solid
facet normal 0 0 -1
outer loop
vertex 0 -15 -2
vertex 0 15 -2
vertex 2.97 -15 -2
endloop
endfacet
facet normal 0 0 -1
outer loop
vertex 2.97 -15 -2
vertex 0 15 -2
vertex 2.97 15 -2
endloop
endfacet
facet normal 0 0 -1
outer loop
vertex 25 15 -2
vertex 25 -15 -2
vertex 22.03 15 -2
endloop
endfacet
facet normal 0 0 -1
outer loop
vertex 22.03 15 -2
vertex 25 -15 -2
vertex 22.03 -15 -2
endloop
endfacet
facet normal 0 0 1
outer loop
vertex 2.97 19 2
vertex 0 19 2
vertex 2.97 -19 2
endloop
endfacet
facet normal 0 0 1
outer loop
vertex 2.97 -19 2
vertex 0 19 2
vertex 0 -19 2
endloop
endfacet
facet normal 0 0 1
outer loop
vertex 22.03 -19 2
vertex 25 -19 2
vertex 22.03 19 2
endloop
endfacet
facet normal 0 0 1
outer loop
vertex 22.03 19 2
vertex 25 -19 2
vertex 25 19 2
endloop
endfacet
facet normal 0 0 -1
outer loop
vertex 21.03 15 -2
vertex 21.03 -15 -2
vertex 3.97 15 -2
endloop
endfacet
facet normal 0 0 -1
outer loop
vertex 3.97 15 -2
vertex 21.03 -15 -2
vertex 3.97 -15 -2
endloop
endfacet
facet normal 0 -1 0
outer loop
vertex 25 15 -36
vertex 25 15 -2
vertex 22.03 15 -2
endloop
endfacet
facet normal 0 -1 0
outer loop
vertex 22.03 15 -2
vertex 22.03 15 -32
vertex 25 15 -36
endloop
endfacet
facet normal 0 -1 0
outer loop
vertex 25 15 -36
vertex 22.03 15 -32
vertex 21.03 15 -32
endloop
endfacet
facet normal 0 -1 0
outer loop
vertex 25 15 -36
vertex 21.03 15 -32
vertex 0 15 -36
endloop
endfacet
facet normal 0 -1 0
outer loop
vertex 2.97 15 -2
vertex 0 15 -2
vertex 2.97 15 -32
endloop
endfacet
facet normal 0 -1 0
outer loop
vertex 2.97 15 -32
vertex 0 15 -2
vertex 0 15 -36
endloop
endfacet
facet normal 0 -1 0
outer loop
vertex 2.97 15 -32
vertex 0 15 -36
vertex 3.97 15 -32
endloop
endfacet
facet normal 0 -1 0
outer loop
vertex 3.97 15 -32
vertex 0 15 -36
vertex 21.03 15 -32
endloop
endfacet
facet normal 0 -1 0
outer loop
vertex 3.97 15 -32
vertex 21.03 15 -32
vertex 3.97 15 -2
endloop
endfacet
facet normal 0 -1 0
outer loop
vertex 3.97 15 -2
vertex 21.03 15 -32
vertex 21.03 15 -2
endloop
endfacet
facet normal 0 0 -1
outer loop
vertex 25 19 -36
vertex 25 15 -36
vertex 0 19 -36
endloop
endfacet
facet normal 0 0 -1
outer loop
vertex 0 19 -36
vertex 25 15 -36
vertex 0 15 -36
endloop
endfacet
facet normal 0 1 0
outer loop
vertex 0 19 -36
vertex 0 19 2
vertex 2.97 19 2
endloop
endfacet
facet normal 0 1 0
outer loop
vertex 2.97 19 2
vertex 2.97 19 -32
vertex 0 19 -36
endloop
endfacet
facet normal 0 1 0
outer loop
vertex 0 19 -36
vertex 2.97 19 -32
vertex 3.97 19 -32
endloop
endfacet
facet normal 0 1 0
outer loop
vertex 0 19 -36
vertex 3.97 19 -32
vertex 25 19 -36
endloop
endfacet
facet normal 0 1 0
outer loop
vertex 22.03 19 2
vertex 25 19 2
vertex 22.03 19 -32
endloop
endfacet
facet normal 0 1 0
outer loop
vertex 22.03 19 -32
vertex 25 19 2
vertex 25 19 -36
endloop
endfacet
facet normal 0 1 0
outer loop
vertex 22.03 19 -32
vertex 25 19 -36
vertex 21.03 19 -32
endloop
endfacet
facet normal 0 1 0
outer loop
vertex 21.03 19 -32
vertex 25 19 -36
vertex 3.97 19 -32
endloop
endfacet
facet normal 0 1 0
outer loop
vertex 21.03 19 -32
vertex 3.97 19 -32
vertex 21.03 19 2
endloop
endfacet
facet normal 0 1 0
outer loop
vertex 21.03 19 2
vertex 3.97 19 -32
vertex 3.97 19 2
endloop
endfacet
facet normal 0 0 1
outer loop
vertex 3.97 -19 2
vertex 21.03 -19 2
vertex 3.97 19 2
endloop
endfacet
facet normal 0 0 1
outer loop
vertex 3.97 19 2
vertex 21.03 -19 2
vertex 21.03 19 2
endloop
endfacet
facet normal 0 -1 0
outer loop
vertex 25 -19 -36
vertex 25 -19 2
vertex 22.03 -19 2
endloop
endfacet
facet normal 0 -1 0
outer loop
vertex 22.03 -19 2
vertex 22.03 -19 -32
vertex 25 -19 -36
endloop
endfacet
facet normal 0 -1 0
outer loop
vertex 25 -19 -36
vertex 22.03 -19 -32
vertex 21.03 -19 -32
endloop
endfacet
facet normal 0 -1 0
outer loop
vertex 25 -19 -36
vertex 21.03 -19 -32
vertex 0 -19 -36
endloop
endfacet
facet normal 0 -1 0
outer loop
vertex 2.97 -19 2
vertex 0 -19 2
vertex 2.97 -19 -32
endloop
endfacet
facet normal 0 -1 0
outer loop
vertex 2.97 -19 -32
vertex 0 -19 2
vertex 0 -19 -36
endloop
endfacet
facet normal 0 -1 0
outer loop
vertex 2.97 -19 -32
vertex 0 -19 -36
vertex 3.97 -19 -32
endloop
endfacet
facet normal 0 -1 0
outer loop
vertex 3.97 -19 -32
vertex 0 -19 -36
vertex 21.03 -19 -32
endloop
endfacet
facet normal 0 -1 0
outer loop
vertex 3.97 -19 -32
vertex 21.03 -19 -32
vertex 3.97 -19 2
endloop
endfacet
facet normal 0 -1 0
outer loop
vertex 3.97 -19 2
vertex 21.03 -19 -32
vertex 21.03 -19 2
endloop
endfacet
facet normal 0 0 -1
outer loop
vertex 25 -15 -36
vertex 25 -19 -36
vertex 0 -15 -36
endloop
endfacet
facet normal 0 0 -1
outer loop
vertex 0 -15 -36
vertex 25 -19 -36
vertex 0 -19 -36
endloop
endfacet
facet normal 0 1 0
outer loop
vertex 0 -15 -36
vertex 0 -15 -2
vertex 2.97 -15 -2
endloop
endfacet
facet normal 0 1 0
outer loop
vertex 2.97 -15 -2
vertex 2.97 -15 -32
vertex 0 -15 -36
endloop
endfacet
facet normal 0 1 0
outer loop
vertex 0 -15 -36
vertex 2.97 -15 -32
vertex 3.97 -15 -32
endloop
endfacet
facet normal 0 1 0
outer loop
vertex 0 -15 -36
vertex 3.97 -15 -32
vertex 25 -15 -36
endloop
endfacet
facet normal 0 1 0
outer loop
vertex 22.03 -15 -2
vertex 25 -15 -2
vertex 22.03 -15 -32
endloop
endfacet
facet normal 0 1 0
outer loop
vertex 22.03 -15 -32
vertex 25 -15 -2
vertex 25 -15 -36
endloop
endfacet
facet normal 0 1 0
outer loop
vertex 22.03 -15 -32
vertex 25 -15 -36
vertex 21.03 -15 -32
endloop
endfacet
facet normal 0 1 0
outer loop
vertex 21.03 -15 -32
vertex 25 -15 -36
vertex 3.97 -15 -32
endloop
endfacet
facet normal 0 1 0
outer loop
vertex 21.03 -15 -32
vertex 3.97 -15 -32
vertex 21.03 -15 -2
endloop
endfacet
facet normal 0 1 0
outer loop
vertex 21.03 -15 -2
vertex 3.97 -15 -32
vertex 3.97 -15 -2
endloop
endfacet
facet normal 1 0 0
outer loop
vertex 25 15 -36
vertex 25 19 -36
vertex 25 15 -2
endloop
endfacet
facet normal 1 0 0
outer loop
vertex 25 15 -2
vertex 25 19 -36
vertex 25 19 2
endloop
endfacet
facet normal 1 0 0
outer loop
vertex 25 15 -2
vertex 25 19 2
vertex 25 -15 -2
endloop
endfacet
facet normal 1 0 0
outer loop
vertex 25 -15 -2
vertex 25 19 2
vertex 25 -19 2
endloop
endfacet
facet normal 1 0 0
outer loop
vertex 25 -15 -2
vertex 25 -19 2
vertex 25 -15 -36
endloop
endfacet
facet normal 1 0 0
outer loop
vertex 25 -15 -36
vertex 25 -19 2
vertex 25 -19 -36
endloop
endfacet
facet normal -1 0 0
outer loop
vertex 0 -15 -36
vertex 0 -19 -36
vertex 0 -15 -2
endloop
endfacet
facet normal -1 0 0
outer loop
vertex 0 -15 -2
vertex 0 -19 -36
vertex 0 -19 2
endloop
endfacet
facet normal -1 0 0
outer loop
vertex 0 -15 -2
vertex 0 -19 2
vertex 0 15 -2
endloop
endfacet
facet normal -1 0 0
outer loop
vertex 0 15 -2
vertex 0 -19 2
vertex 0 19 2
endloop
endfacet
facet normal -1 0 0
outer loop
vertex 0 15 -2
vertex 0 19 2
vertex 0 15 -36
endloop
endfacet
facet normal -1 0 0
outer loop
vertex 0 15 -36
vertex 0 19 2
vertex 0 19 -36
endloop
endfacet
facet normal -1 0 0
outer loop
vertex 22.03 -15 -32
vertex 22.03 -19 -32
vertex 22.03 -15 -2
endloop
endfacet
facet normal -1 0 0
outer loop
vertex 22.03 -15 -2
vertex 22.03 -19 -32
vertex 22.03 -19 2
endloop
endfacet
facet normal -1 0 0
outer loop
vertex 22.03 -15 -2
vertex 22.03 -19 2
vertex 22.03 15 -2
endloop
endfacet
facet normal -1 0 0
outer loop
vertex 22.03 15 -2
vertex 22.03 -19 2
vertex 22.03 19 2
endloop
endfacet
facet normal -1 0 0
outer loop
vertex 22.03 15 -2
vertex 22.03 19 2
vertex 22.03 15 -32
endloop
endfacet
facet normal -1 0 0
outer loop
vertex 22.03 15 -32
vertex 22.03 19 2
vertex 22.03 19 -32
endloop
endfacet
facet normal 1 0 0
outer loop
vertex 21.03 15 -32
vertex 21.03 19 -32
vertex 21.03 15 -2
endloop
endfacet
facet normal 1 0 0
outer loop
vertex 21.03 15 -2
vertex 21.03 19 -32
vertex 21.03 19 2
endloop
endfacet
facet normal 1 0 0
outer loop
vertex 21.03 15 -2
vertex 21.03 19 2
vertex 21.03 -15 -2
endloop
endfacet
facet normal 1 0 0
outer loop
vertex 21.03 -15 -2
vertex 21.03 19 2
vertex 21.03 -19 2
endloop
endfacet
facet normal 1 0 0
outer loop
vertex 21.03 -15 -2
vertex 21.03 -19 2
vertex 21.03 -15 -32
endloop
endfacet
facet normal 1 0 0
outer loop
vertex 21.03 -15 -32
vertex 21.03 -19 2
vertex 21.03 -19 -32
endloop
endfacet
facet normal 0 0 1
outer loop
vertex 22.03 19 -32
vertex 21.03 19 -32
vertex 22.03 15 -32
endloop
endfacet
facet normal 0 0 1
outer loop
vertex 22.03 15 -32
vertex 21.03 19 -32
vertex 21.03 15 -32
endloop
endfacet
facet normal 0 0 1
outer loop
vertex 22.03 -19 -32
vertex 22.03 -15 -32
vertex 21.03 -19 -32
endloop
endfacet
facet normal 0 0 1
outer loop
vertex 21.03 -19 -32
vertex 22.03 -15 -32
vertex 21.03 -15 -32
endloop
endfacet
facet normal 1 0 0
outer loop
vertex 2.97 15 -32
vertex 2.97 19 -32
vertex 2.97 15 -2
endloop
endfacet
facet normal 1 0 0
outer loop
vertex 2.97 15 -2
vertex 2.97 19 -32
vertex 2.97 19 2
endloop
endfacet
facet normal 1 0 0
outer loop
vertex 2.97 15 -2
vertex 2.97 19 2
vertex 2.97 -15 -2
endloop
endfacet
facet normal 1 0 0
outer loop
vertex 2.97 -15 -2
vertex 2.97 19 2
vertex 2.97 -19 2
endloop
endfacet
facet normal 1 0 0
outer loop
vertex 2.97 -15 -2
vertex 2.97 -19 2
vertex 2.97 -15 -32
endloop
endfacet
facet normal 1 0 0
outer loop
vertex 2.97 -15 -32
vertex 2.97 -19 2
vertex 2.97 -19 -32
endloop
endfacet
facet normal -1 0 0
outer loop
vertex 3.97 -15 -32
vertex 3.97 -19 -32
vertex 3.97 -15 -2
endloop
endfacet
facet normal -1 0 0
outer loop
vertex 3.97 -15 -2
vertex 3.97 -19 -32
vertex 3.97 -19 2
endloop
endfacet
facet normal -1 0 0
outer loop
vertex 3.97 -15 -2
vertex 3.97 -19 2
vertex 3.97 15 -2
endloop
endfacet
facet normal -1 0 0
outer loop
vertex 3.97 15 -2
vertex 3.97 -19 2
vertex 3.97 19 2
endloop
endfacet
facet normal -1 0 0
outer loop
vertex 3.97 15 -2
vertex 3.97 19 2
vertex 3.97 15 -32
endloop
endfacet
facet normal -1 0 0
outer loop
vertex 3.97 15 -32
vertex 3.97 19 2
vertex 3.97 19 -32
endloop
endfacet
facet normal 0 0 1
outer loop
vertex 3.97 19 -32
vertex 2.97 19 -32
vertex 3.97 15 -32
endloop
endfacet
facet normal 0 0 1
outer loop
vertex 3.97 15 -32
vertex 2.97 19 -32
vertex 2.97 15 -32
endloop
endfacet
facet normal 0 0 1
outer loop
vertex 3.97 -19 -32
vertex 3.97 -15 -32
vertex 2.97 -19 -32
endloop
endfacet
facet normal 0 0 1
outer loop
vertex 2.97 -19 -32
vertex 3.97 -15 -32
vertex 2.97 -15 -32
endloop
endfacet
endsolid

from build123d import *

# Parameters (mm, degrees)
SKETCH2_W           = 4
SKETCH2_H           = 30
BOSS_EXTRUDE1_DEPTH = 25
SKETCH3_W           = 1
SKETCH3_H           = 38
CUT_EXTRUDE1_DEPTH  = 34


with BuildPart() as part:
    # Sketch2 → Boss-Extrude1 (new body)
    with BuildSketch(Plane(origin=(0, 0, 0), x_dir=(0, 0, -1), z_dir=(1, 0, 0))):
        Rectangle(SKETCH2_W, SKETCH2_H)
        Polygon((-2, 19), (-2, 15), (2, 15), (36, 15), (36, 19), align=None)
        Polygon((2, -15), (-2, -15), (-2, -19), (36, -19), (36, -15), align=None)
    extrude(amount=BOSS_EXTRUDE1_DEPTH)

    # Sketch3 → Cut-Extrude1 (cut)
    with BuildSketch(Plane.XY.offset(2)):
        with Locations((3.469945018, 0)):
            Rectangle(SKETCH3_W, SKETCH3_H)
        with Locations((21.530054982, 0)):
            Rectangle(SKETCH3_W, SKETCH3_H)
    extrude(amount=-CUT_EXTRUDE1_DEPTH, mode=Mode.SUBTRACT)


solid = part.part
